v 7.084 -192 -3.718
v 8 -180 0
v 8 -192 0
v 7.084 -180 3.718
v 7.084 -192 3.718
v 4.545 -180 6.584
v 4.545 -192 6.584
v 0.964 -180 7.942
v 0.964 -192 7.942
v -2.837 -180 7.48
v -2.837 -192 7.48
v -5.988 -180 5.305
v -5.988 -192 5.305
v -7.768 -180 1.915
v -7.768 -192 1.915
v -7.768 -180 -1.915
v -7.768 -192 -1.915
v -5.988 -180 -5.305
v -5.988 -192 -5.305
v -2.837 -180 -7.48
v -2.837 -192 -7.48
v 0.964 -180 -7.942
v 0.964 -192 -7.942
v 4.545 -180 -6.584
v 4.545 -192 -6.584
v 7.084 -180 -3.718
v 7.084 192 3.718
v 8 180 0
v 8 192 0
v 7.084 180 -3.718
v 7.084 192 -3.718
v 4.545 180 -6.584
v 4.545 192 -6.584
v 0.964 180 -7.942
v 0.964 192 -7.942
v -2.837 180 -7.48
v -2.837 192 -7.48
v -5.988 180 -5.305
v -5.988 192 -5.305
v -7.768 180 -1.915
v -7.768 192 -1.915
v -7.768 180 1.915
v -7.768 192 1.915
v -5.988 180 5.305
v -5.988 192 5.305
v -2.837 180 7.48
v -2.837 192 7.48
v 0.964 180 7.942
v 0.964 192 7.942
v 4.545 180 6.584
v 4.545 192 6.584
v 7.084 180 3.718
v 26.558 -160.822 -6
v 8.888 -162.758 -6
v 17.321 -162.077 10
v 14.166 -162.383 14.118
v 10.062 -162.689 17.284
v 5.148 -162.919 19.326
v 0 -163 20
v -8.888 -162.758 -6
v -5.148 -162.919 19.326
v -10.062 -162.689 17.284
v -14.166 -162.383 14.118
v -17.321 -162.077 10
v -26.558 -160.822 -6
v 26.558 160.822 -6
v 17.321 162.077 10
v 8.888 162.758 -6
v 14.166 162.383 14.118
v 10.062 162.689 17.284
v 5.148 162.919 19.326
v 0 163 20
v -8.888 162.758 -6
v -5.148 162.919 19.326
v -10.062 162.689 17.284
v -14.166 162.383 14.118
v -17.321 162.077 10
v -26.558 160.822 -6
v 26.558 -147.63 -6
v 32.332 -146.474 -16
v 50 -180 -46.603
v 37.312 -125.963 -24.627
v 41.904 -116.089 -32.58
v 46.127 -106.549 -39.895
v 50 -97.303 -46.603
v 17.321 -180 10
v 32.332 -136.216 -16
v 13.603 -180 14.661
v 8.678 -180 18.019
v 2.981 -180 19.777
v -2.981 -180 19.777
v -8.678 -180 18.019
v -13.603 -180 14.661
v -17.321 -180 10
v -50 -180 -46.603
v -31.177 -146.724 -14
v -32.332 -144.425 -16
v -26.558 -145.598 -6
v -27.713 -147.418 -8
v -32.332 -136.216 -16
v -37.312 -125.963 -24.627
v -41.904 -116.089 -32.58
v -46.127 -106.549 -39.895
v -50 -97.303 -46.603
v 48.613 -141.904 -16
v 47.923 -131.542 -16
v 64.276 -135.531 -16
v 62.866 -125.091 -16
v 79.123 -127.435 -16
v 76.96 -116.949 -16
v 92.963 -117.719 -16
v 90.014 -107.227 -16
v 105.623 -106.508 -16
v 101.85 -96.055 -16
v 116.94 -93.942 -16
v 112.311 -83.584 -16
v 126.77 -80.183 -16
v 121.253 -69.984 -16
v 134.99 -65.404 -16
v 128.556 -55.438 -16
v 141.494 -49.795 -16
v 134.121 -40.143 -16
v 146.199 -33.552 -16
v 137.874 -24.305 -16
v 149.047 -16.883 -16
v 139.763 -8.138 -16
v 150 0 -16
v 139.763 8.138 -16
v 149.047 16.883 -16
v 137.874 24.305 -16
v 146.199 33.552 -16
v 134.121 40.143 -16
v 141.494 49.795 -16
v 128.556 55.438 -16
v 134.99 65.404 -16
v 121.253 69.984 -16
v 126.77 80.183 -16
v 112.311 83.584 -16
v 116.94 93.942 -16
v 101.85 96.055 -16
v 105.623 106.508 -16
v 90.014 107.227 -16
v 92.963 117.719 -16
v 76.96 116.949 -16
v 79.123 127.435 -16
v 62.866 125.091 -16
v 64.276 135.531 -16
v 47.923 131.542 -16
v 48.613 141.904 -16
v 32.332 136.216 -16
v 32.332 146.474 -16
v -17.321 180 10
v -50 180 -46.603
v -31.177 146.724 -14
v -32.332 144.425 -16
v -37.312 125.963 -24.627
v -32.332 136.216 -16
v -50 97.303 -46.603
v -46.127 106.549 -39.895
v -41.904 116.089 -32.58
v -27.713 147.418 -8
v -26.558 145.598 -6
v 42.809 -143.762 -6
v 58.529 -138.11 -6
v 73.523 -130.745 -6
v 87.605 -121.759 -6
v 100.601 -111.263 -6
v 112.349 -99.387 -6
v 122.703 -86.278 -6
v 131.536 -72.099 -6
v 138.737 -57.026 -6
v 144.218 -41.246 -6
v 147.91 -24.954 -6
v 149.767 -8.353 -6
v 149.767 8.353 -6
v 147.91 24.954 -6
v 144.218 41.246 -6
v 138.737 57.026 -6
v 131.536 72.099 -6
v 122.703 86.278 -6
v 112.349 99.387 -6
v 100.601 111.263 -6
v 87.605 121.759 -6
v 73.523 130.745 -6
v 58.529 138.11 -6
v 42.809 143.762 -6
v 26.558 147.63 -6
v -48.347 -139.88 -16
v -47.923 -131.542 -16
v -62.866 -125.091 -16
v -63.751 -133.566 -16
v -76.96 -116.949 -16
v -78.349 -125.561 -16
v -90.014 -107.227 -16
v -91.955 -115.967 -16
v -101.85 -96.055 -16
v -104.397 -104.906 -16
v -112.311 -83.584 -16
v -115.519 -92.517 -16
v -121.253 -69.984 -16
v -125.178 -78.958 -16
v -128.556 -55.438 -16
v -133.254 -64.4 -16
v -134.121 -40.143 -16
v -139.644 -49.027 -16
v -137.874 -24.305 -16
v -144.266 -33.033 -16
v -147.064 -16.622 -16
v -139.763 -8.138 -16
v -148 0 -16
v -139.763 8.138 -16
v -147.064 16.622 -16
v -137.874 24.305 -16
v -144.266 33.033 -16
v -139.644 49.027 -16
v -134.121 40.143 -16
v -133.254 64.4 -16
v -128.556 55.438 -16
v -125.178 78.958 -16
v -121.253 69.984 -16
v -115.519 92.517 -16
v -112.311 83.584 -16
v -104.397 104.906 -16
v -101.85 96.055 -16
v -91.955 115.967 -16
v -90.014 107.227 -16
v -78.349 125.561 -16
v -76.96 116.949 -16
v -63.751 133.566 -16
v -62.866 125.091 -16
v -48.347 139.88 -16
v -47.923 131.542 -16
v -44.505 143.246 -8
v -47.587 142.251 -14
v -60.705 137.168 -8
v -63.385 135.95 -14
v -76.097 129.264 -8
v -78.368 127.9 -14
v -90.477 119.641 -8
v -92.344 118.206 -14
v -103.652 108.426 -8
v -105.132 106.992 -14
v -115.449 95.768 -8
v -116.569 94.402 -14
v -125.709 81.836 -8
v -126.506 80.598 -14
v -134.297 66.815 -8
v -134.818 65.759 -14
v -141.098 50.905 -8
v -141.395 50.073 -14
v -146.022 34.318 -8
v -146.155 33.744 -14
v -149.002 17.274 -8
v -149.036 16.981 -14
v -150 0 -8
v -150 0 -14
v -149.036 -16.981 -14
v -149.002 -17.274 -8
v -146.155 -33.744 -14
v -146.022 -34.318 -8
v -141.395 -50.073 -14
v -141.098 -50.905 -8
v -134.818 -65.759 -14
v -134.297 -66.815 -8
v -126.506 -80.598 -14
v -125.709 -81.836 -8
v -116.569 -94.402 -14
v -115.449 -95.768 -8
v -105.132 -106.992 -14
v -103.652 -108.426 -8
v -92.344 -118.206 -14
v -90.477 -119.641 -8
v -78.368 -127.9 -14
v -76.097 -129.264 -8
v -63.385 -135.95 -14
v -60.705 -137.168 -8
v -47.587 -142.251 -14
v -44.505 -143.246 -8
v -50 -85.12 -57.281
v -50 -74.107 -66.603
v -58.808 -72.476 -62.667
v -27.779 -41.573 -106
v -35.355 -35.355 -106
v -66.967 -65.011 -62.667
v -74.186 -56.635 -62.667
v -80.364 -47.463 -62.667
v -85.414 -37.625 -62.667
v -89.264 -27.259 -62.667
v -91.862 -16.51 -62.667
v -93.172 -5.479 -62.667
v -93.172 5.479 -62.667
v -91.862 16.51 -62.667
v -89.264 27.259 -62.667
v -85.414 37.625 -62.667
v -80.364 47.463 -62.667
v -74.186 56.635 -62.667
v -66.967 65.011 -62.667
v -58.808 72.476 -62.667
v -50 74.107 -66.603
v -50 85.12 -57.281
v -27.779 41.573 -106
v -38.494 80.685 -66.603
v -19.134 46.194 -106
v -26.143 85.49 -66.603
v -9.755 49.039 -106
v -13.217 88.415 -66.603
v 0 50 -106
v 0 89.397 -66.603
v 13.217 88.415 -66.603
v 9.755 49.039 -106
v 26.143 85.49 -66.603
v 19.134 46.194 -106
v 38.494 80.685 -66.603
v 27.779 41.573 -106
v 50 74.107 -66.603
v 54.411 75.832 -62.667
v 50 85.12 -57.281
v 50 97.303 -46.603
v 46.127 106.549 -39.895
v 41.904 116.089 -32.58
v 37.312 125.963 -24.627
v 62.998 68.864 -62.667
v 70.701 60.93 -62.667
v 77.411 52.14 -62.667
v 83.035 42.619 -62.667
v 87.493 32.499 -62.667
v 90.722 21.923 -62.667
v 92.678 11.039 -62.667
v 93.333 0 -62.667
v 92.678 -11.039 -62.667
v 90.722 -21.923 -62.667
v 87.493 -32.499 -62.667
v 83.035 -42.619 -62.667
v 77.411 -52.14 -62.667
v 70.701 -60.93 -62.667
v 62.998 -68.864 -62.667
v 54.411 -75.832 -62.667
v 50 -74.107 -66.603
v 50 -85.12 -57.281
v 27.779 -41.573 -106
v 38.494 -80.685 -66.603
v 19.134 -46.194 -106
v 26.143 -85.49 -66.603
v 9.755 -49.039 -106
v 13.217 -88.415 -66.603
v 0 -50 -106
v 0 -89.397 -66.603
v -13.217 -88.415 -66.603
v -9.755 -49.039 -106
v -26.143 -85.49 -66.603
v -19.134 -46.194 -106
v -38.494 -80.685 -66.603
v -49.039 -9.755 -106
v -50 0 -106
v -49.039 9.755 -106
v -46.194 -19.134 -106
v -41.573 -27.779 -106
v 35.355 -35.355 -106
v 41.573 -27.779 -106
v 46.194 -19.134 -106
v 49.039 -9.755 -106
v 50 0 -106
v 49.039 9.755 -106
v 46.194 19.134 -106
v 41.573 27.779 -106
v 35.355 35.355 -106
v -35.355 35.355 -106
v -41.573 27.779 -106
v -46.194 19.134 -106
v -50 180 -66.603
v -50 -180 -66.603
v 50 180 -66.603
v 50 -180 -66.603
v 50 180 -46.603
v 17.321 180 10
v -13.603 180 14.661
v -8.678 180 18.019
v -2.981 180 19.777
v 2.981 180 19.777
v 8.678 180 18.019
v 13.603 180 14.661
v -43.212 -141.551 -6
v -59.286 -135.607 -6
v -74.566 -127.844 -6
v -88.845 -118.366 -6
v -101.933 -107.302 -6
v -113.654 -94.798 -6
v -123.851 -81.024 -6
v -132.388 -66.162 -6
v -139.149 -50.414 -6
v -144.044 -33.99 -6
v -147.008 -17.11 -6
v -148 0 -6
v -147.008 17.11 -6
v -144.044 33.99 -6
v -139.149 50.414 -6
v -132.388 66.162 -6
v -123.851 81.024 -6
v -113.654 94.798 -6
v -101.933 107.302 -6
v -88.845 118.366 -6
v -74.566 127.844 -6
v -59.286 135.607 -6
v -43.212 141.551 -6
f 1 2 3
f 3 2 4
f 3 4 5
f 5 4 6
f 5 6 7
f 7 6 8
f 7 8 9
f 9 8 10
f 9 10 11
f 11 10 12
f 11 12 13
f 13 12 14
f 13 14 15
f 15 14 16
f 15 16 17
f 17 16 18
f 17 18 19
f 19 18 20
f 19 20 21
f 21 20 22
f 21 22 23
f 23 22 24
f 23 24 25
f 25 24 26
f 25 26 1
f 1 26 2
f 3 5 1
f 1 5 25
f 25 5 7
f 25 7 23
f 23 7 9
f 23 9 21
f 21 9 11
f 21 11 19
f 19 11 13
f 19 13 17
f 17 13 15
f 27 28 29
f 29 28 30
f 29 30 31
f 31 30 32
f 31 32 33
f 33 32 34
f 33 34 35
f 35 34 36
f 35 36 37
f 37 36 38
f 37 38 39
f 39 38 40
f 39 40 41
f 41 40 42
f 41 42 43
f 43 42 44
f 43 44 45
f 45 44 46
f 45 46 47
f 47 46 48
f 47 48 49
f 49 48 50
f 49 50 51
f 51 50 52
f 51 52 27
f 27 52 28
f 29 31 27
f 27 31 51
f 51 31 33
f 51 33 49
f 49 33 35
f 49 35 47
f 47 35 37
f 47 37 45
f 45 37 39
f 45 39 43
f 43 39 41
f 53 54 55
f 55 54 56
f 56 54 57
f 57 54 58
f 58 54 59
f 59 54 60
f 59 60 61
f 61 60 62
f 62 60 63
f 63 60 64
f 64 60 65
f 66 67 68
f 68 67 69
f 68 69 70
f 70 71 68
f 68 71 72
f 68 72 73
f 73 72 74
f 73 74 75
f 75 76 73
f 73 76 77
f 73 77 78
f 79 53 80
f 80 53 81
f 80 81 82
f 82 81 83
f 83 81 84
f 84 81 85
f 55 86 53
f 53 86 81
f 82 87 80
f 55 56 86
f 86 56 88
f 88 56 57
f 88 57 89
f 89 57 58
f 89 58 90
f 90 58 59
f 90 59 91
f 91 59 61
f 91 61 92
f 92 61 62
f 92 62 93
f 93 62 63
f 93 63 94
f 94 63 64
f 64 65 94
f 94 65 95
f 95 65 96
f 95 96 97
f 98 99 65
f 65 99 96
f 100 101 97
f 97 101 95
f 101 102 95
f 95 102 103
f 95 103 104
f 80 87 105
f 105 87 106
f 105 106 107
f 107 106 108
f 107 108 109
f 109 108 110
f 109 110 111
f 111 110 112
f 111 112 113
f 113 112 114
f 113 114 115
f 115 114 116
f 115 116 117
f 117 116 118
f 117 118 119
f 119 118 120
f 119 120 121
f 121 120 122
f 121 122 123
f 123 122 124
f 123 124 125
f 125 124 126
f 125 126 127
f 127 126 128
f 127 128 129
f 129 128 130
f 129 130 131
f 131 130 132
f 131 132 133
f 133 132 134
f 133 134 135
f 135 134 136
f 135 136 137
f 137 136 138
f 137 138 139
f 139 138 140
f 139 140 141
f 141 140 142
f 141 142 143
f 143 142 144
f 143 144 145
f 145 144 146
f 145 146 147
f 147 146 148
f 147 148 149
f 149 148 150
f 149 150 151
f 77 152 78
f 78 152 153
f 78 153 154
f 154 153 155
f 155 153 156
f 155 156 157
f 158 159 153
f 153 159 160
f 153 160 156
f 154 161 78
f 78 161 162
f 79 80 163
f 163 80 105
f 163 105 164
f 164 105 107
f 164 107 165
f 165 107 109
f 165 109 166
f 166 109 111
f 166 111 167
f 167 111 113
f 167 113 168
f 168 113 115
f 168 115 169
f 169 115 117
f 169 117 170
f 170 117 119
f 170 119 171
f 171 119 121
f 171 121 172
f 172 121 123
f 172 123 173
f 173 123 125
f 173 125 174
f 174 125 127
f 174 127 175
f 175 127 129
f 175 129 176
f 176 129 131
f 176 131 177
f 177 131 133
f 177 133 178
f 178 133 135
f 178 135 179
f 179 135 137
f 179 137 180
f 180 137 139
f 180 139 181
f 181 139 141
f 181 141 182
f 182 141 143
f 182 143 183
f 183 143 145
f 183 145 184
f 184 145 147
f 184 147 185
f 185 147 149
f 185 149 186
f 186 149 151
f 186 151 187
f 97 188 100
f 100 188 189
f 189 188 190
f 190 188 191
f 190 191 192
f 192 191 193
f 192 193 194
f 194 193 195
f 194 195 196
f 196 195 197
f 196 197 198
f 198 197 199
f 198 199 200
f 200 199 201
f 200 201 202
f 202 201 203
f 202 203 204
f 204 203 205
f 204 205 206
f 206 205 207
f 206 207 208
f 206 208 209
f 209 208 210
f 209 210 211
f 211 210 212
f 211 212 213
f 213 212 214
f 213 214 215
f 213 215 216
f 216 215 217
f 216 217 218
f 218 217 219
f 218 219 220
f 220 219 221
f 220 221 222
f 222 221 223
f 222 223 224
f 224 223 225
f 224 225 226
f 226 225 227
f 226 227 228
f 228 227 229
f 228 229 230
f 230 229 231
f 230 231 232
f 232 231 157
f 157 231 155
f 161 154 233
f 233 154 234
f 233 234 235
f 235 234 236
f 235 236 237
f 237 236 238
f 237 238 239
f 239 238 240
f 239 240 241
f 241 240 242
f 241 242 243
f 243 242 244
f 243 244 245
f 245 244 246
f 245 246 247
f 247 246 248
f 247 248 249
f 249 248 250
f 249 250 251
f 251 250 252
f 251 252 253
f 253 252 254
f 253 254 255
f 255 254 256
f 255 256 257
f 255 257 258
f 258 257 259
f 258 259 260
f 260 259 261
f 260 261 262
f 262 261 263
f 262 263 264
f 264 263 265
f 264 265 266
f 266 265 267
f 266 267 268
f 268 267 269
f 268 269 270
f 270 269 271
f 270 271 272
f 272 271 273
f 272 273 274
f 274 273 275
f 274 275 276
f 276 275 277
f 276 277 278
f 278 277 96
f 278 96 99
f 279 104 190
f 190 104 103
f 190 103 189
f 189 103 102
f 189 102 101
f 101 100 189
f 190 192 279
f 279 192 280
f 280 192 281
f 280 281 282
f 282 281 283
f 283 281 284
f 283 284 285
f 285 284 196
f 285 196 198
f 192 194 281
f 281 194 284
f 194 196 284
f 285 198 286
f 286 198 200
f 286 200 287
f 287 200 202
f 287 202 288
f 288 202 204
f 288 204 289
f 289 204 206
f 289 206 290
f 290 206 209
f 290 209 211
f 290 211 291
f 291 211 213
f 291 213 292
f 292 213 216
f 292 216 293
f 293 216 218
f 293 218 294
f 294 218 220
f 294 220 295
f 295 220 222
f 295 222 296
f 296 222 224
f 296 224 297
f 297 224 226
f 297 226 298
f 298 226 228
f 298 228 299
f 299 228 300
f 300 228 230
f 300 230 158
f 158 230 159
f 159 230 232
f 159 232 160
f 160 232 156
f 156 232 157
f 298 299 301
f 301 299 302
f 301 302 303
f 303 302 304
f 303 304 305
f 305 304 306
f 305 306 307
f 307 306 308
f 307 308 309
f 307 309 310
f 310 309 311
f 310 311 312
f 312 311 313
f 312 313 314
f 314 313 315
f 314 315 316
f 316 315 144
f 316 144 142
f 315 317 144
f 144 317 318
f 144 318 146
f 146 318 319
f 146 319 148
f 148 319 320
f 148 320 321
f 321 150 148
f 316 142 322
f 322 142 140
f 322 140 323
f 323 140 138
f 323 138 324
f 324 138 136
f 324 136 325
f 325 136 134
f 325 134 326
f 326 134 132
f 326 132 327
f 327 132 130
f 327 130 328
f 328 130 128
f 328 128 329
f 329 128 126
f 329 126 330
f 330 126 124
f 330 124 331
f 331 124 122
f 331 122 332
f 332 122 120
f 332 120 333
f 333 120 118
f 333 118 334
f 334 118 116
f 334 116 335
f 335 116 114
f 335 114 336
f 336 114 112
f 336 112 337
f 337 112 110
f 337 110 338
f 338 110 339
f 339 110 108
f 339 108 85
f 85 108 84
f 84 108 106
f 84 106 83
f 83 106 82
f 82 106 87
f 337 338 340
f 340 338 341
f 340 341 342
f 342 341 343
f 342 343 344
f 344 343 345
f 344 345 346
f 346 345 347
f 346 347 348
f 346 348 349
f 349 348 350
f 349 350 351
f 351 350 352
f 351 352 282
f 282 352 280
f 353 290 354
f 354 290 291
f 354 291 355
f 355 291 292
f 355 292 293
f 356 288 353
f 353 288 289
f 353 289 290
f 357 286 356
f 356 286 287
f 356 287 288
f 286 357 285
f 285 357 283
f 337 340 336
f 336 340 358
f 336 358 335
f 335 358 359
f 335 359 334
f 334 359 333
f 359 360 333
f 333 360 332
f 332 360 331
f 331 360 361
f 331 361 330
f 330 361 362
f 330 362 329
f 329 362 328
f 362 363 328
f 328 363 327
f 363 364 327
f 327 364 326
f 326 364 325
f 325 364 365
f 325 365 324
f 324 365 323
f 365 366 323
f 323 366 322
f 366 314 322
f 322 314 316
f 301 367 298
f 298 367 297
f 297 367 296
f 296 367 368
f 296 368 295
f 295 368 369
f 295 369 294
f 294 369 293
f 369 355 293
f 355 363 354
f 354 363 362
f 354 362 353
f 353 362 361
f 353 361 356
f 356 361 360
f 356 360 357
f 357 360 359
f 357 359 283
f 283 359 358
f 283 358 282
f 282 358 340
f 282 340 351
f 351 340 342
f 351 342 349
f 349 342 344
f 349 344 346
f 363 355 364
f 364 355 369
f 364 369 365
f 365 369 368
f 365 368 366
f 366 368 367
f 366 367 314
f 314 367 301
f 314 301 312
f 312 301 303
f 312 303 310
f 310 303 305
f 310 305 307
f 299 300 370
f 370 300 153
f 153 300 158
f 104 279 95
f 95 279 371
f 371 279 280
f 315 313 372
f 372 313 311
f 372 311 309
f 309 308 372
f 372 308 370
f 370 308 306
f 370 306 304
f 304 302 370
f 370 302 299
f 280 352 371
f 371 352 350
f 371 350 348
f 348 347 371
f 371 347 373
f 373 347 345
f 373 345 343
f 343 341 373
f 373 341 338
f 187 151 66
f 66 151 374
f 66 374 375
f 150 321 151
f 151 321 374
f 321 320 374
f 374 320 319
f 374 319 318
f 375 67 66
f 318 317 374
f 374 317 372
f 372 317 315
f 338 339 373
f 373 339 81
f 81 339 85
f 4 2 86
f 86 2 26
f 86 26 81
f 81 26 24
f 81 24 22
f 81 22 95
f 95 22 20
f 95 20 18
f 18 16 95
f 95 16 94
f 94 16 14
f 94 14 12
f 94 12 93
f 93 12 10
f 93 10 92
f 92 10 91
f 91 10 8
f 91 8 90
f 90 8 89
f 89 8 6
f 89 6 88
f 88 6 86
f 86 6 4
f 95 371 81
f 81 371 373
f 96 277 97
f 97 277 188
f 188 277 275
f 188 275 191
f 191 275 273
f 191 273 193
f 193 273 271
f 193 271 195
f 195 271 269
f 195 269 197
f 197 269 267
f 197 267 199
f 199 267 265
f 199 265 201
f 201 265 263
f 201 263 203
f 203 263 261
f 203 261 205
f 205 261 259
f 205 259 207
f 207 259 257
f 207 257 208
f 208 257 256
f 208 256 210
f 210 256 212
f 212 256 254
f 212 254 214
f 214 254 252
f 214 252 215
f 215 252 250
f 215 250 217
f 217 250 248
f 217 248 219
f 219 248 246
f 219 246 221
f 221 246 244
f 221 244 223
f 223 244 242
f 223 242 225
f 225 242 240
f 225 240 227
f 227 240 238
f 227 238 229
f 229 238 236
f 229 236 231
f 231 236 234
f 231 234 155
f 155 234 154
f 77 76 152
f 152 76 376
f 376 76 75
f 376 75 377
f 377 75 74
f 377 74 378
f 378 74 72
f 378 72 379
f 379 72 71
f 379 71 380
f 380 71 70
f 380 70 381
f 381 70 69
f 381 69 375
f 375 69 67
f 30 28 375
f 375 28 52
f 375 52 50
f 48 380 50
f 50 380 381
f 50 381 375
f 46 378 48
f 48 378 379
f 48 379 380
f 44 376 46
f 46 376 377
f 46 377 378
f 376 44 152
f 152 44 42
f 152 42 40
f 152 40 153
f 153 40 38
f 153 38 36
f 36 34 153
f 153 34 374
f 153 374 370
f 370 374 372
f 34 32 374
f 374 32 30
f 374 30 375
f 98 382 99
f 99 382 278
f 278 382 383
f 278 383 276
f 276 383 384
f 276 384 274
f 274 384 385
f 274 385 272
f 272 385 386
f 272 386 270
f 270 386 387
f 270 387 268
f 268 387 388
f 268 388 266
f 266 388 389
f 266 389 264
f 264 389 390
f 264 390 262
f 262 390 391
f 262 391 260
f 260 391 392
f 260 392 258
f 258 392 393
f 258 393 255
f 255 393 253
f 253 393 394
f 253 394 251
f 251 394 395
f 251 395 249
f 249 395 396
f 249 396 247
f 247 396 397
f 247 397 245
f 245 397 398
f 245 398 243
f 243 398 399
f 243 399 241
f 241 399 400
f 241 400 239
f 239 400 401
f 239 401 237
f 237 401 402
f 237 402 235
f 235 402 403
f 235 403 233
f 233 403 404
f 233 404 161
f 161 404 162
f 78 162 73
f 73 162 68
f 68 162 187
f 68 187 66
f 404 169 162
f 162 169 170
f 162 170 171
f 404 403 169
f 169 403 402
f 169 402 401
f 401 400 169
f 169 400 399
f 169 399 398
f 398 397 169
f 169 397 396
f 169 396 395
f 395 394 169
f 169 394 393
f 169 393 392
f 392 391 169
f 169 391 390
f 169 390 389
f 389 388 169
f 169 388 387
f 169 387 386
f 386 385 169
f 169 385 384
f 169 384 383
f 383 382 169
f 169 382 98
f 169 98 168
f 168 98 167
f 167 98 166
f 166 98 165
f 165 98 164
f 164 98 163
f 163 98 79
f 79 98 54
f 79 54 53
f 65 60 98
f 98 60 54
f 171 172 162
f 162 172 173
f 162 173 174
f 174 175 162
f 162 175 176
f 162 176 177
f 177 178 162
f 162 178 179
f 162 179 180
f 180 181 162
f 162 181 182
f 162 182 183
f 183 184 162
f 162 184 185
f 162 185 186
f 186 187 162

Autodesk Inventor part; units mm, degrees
ref_plane "YZ Plane" through (0, 0, 0) normal (1, 0, 0) x (0, 1, 0)
ref_plane "XZ Plane" through (0, 0, 0) normal (0, 1, 0) x (-1, 0, 0)
ref_plane "XY Plane" through (0, 0, 0) normal (0, 0, 1) x (1, 0, 0)
sketch "Sketch1" plane through (0, 0, 0) normal (0, 1, 0) x (-1, 0, 0)
  line L0 (289.4755, 0) -> (-215.021, 0)
  line L1 (0, 324.0308) -> (0, -320.0636)
  circle A0 centre (0, 0) radius 10 construction
  line L2 (17.3205, 10) -> (50, -46.6025)
  line L3 (50, -46.6025) -> (0, -46.6025) construction
  line L4 (-17.3205, 10) -> (-50, -46.6025)
  line L5 (-50, -46.6025) -> (0, -46.6025) construction
  arc A1 (17.3205, 10) -> (-17.3205, 10) centre (0, 0) ccw
  line L6 (50, -46.6025) -> (50, -66.6025)
  line L7 (50, -66.6025) -> (-50, -66.6025)
  line L8 (-50, -66.6025) -> (-50, -46.6025)
  point P0 (0, 40)
  dimension "d0" = 20
  dimension "d1" = 50
  dimension "d2" = 60
  dimension "d3" = 40
  dimension "d4" = 20
  dimension "d5" = 20
extrude "Extrusion1" add sketch "Sketch1" along normal mid plane 360
sketch "Sketch2" plane through (0, 0, 0) normal (0, 1, 0) x (-1, 0, 0)
  line L0 (0, 66.6254) -> (0, -94.0572)
  line L1 (109.0661, 0) -> (-97.6998, 0)
  line L2 (0, -6) -> (150, -6)
  line L3 (150, -6) -> (150, -16)
  line L4 (150, -16) -> (140, -16)
  line L5 (140, -16) -> (50, -106)
  line L6 (50, -106) -> (0, -106)
  line L7 (0, -106) -> (0, -6)
  point P0 (0, 0)
  point P1 (0, -94.0572)
  dimension "d8" = 150
  dimension "d9" = 12
  dimension "d10" = 135
  dimension "d11" = 50
  dimension "d12" = 100
  dimension "d13" = 10
revolve "Revolution1" add sketch "Sketch2" angle 360 about axis through (0, 0, 66.6254) along (0, 0, -1)
sketch "Sketch3" plane through (0, 0, -6) normal (0, 0, 1) x (1, 0, 0)
  circle A0 centre (0, 0) radius 163
  dimension "d15" = 326
extrude "Extrusion2" cut sketch "Sketch3" along normal blind 360
sketch "Sketch4" plane through (0, 180, 0) normal (0, 1, 0) x (1, 0, 0)
  circle A0 centre (0, 0) radius 8
  dimension "d18" = 16
extrude "Extrusion3" add sketch "Sketch4" along normal blind 12
mirror "Mirror1" about plane through (0, 0, 0) normal (0, 1, 0) of "Extrusion3"
chamfer "Chamfer1" distance 2 angle 45 2 edges at (-150, 0, -6) (-150, 0, -16)
properties part number "B_axis"
